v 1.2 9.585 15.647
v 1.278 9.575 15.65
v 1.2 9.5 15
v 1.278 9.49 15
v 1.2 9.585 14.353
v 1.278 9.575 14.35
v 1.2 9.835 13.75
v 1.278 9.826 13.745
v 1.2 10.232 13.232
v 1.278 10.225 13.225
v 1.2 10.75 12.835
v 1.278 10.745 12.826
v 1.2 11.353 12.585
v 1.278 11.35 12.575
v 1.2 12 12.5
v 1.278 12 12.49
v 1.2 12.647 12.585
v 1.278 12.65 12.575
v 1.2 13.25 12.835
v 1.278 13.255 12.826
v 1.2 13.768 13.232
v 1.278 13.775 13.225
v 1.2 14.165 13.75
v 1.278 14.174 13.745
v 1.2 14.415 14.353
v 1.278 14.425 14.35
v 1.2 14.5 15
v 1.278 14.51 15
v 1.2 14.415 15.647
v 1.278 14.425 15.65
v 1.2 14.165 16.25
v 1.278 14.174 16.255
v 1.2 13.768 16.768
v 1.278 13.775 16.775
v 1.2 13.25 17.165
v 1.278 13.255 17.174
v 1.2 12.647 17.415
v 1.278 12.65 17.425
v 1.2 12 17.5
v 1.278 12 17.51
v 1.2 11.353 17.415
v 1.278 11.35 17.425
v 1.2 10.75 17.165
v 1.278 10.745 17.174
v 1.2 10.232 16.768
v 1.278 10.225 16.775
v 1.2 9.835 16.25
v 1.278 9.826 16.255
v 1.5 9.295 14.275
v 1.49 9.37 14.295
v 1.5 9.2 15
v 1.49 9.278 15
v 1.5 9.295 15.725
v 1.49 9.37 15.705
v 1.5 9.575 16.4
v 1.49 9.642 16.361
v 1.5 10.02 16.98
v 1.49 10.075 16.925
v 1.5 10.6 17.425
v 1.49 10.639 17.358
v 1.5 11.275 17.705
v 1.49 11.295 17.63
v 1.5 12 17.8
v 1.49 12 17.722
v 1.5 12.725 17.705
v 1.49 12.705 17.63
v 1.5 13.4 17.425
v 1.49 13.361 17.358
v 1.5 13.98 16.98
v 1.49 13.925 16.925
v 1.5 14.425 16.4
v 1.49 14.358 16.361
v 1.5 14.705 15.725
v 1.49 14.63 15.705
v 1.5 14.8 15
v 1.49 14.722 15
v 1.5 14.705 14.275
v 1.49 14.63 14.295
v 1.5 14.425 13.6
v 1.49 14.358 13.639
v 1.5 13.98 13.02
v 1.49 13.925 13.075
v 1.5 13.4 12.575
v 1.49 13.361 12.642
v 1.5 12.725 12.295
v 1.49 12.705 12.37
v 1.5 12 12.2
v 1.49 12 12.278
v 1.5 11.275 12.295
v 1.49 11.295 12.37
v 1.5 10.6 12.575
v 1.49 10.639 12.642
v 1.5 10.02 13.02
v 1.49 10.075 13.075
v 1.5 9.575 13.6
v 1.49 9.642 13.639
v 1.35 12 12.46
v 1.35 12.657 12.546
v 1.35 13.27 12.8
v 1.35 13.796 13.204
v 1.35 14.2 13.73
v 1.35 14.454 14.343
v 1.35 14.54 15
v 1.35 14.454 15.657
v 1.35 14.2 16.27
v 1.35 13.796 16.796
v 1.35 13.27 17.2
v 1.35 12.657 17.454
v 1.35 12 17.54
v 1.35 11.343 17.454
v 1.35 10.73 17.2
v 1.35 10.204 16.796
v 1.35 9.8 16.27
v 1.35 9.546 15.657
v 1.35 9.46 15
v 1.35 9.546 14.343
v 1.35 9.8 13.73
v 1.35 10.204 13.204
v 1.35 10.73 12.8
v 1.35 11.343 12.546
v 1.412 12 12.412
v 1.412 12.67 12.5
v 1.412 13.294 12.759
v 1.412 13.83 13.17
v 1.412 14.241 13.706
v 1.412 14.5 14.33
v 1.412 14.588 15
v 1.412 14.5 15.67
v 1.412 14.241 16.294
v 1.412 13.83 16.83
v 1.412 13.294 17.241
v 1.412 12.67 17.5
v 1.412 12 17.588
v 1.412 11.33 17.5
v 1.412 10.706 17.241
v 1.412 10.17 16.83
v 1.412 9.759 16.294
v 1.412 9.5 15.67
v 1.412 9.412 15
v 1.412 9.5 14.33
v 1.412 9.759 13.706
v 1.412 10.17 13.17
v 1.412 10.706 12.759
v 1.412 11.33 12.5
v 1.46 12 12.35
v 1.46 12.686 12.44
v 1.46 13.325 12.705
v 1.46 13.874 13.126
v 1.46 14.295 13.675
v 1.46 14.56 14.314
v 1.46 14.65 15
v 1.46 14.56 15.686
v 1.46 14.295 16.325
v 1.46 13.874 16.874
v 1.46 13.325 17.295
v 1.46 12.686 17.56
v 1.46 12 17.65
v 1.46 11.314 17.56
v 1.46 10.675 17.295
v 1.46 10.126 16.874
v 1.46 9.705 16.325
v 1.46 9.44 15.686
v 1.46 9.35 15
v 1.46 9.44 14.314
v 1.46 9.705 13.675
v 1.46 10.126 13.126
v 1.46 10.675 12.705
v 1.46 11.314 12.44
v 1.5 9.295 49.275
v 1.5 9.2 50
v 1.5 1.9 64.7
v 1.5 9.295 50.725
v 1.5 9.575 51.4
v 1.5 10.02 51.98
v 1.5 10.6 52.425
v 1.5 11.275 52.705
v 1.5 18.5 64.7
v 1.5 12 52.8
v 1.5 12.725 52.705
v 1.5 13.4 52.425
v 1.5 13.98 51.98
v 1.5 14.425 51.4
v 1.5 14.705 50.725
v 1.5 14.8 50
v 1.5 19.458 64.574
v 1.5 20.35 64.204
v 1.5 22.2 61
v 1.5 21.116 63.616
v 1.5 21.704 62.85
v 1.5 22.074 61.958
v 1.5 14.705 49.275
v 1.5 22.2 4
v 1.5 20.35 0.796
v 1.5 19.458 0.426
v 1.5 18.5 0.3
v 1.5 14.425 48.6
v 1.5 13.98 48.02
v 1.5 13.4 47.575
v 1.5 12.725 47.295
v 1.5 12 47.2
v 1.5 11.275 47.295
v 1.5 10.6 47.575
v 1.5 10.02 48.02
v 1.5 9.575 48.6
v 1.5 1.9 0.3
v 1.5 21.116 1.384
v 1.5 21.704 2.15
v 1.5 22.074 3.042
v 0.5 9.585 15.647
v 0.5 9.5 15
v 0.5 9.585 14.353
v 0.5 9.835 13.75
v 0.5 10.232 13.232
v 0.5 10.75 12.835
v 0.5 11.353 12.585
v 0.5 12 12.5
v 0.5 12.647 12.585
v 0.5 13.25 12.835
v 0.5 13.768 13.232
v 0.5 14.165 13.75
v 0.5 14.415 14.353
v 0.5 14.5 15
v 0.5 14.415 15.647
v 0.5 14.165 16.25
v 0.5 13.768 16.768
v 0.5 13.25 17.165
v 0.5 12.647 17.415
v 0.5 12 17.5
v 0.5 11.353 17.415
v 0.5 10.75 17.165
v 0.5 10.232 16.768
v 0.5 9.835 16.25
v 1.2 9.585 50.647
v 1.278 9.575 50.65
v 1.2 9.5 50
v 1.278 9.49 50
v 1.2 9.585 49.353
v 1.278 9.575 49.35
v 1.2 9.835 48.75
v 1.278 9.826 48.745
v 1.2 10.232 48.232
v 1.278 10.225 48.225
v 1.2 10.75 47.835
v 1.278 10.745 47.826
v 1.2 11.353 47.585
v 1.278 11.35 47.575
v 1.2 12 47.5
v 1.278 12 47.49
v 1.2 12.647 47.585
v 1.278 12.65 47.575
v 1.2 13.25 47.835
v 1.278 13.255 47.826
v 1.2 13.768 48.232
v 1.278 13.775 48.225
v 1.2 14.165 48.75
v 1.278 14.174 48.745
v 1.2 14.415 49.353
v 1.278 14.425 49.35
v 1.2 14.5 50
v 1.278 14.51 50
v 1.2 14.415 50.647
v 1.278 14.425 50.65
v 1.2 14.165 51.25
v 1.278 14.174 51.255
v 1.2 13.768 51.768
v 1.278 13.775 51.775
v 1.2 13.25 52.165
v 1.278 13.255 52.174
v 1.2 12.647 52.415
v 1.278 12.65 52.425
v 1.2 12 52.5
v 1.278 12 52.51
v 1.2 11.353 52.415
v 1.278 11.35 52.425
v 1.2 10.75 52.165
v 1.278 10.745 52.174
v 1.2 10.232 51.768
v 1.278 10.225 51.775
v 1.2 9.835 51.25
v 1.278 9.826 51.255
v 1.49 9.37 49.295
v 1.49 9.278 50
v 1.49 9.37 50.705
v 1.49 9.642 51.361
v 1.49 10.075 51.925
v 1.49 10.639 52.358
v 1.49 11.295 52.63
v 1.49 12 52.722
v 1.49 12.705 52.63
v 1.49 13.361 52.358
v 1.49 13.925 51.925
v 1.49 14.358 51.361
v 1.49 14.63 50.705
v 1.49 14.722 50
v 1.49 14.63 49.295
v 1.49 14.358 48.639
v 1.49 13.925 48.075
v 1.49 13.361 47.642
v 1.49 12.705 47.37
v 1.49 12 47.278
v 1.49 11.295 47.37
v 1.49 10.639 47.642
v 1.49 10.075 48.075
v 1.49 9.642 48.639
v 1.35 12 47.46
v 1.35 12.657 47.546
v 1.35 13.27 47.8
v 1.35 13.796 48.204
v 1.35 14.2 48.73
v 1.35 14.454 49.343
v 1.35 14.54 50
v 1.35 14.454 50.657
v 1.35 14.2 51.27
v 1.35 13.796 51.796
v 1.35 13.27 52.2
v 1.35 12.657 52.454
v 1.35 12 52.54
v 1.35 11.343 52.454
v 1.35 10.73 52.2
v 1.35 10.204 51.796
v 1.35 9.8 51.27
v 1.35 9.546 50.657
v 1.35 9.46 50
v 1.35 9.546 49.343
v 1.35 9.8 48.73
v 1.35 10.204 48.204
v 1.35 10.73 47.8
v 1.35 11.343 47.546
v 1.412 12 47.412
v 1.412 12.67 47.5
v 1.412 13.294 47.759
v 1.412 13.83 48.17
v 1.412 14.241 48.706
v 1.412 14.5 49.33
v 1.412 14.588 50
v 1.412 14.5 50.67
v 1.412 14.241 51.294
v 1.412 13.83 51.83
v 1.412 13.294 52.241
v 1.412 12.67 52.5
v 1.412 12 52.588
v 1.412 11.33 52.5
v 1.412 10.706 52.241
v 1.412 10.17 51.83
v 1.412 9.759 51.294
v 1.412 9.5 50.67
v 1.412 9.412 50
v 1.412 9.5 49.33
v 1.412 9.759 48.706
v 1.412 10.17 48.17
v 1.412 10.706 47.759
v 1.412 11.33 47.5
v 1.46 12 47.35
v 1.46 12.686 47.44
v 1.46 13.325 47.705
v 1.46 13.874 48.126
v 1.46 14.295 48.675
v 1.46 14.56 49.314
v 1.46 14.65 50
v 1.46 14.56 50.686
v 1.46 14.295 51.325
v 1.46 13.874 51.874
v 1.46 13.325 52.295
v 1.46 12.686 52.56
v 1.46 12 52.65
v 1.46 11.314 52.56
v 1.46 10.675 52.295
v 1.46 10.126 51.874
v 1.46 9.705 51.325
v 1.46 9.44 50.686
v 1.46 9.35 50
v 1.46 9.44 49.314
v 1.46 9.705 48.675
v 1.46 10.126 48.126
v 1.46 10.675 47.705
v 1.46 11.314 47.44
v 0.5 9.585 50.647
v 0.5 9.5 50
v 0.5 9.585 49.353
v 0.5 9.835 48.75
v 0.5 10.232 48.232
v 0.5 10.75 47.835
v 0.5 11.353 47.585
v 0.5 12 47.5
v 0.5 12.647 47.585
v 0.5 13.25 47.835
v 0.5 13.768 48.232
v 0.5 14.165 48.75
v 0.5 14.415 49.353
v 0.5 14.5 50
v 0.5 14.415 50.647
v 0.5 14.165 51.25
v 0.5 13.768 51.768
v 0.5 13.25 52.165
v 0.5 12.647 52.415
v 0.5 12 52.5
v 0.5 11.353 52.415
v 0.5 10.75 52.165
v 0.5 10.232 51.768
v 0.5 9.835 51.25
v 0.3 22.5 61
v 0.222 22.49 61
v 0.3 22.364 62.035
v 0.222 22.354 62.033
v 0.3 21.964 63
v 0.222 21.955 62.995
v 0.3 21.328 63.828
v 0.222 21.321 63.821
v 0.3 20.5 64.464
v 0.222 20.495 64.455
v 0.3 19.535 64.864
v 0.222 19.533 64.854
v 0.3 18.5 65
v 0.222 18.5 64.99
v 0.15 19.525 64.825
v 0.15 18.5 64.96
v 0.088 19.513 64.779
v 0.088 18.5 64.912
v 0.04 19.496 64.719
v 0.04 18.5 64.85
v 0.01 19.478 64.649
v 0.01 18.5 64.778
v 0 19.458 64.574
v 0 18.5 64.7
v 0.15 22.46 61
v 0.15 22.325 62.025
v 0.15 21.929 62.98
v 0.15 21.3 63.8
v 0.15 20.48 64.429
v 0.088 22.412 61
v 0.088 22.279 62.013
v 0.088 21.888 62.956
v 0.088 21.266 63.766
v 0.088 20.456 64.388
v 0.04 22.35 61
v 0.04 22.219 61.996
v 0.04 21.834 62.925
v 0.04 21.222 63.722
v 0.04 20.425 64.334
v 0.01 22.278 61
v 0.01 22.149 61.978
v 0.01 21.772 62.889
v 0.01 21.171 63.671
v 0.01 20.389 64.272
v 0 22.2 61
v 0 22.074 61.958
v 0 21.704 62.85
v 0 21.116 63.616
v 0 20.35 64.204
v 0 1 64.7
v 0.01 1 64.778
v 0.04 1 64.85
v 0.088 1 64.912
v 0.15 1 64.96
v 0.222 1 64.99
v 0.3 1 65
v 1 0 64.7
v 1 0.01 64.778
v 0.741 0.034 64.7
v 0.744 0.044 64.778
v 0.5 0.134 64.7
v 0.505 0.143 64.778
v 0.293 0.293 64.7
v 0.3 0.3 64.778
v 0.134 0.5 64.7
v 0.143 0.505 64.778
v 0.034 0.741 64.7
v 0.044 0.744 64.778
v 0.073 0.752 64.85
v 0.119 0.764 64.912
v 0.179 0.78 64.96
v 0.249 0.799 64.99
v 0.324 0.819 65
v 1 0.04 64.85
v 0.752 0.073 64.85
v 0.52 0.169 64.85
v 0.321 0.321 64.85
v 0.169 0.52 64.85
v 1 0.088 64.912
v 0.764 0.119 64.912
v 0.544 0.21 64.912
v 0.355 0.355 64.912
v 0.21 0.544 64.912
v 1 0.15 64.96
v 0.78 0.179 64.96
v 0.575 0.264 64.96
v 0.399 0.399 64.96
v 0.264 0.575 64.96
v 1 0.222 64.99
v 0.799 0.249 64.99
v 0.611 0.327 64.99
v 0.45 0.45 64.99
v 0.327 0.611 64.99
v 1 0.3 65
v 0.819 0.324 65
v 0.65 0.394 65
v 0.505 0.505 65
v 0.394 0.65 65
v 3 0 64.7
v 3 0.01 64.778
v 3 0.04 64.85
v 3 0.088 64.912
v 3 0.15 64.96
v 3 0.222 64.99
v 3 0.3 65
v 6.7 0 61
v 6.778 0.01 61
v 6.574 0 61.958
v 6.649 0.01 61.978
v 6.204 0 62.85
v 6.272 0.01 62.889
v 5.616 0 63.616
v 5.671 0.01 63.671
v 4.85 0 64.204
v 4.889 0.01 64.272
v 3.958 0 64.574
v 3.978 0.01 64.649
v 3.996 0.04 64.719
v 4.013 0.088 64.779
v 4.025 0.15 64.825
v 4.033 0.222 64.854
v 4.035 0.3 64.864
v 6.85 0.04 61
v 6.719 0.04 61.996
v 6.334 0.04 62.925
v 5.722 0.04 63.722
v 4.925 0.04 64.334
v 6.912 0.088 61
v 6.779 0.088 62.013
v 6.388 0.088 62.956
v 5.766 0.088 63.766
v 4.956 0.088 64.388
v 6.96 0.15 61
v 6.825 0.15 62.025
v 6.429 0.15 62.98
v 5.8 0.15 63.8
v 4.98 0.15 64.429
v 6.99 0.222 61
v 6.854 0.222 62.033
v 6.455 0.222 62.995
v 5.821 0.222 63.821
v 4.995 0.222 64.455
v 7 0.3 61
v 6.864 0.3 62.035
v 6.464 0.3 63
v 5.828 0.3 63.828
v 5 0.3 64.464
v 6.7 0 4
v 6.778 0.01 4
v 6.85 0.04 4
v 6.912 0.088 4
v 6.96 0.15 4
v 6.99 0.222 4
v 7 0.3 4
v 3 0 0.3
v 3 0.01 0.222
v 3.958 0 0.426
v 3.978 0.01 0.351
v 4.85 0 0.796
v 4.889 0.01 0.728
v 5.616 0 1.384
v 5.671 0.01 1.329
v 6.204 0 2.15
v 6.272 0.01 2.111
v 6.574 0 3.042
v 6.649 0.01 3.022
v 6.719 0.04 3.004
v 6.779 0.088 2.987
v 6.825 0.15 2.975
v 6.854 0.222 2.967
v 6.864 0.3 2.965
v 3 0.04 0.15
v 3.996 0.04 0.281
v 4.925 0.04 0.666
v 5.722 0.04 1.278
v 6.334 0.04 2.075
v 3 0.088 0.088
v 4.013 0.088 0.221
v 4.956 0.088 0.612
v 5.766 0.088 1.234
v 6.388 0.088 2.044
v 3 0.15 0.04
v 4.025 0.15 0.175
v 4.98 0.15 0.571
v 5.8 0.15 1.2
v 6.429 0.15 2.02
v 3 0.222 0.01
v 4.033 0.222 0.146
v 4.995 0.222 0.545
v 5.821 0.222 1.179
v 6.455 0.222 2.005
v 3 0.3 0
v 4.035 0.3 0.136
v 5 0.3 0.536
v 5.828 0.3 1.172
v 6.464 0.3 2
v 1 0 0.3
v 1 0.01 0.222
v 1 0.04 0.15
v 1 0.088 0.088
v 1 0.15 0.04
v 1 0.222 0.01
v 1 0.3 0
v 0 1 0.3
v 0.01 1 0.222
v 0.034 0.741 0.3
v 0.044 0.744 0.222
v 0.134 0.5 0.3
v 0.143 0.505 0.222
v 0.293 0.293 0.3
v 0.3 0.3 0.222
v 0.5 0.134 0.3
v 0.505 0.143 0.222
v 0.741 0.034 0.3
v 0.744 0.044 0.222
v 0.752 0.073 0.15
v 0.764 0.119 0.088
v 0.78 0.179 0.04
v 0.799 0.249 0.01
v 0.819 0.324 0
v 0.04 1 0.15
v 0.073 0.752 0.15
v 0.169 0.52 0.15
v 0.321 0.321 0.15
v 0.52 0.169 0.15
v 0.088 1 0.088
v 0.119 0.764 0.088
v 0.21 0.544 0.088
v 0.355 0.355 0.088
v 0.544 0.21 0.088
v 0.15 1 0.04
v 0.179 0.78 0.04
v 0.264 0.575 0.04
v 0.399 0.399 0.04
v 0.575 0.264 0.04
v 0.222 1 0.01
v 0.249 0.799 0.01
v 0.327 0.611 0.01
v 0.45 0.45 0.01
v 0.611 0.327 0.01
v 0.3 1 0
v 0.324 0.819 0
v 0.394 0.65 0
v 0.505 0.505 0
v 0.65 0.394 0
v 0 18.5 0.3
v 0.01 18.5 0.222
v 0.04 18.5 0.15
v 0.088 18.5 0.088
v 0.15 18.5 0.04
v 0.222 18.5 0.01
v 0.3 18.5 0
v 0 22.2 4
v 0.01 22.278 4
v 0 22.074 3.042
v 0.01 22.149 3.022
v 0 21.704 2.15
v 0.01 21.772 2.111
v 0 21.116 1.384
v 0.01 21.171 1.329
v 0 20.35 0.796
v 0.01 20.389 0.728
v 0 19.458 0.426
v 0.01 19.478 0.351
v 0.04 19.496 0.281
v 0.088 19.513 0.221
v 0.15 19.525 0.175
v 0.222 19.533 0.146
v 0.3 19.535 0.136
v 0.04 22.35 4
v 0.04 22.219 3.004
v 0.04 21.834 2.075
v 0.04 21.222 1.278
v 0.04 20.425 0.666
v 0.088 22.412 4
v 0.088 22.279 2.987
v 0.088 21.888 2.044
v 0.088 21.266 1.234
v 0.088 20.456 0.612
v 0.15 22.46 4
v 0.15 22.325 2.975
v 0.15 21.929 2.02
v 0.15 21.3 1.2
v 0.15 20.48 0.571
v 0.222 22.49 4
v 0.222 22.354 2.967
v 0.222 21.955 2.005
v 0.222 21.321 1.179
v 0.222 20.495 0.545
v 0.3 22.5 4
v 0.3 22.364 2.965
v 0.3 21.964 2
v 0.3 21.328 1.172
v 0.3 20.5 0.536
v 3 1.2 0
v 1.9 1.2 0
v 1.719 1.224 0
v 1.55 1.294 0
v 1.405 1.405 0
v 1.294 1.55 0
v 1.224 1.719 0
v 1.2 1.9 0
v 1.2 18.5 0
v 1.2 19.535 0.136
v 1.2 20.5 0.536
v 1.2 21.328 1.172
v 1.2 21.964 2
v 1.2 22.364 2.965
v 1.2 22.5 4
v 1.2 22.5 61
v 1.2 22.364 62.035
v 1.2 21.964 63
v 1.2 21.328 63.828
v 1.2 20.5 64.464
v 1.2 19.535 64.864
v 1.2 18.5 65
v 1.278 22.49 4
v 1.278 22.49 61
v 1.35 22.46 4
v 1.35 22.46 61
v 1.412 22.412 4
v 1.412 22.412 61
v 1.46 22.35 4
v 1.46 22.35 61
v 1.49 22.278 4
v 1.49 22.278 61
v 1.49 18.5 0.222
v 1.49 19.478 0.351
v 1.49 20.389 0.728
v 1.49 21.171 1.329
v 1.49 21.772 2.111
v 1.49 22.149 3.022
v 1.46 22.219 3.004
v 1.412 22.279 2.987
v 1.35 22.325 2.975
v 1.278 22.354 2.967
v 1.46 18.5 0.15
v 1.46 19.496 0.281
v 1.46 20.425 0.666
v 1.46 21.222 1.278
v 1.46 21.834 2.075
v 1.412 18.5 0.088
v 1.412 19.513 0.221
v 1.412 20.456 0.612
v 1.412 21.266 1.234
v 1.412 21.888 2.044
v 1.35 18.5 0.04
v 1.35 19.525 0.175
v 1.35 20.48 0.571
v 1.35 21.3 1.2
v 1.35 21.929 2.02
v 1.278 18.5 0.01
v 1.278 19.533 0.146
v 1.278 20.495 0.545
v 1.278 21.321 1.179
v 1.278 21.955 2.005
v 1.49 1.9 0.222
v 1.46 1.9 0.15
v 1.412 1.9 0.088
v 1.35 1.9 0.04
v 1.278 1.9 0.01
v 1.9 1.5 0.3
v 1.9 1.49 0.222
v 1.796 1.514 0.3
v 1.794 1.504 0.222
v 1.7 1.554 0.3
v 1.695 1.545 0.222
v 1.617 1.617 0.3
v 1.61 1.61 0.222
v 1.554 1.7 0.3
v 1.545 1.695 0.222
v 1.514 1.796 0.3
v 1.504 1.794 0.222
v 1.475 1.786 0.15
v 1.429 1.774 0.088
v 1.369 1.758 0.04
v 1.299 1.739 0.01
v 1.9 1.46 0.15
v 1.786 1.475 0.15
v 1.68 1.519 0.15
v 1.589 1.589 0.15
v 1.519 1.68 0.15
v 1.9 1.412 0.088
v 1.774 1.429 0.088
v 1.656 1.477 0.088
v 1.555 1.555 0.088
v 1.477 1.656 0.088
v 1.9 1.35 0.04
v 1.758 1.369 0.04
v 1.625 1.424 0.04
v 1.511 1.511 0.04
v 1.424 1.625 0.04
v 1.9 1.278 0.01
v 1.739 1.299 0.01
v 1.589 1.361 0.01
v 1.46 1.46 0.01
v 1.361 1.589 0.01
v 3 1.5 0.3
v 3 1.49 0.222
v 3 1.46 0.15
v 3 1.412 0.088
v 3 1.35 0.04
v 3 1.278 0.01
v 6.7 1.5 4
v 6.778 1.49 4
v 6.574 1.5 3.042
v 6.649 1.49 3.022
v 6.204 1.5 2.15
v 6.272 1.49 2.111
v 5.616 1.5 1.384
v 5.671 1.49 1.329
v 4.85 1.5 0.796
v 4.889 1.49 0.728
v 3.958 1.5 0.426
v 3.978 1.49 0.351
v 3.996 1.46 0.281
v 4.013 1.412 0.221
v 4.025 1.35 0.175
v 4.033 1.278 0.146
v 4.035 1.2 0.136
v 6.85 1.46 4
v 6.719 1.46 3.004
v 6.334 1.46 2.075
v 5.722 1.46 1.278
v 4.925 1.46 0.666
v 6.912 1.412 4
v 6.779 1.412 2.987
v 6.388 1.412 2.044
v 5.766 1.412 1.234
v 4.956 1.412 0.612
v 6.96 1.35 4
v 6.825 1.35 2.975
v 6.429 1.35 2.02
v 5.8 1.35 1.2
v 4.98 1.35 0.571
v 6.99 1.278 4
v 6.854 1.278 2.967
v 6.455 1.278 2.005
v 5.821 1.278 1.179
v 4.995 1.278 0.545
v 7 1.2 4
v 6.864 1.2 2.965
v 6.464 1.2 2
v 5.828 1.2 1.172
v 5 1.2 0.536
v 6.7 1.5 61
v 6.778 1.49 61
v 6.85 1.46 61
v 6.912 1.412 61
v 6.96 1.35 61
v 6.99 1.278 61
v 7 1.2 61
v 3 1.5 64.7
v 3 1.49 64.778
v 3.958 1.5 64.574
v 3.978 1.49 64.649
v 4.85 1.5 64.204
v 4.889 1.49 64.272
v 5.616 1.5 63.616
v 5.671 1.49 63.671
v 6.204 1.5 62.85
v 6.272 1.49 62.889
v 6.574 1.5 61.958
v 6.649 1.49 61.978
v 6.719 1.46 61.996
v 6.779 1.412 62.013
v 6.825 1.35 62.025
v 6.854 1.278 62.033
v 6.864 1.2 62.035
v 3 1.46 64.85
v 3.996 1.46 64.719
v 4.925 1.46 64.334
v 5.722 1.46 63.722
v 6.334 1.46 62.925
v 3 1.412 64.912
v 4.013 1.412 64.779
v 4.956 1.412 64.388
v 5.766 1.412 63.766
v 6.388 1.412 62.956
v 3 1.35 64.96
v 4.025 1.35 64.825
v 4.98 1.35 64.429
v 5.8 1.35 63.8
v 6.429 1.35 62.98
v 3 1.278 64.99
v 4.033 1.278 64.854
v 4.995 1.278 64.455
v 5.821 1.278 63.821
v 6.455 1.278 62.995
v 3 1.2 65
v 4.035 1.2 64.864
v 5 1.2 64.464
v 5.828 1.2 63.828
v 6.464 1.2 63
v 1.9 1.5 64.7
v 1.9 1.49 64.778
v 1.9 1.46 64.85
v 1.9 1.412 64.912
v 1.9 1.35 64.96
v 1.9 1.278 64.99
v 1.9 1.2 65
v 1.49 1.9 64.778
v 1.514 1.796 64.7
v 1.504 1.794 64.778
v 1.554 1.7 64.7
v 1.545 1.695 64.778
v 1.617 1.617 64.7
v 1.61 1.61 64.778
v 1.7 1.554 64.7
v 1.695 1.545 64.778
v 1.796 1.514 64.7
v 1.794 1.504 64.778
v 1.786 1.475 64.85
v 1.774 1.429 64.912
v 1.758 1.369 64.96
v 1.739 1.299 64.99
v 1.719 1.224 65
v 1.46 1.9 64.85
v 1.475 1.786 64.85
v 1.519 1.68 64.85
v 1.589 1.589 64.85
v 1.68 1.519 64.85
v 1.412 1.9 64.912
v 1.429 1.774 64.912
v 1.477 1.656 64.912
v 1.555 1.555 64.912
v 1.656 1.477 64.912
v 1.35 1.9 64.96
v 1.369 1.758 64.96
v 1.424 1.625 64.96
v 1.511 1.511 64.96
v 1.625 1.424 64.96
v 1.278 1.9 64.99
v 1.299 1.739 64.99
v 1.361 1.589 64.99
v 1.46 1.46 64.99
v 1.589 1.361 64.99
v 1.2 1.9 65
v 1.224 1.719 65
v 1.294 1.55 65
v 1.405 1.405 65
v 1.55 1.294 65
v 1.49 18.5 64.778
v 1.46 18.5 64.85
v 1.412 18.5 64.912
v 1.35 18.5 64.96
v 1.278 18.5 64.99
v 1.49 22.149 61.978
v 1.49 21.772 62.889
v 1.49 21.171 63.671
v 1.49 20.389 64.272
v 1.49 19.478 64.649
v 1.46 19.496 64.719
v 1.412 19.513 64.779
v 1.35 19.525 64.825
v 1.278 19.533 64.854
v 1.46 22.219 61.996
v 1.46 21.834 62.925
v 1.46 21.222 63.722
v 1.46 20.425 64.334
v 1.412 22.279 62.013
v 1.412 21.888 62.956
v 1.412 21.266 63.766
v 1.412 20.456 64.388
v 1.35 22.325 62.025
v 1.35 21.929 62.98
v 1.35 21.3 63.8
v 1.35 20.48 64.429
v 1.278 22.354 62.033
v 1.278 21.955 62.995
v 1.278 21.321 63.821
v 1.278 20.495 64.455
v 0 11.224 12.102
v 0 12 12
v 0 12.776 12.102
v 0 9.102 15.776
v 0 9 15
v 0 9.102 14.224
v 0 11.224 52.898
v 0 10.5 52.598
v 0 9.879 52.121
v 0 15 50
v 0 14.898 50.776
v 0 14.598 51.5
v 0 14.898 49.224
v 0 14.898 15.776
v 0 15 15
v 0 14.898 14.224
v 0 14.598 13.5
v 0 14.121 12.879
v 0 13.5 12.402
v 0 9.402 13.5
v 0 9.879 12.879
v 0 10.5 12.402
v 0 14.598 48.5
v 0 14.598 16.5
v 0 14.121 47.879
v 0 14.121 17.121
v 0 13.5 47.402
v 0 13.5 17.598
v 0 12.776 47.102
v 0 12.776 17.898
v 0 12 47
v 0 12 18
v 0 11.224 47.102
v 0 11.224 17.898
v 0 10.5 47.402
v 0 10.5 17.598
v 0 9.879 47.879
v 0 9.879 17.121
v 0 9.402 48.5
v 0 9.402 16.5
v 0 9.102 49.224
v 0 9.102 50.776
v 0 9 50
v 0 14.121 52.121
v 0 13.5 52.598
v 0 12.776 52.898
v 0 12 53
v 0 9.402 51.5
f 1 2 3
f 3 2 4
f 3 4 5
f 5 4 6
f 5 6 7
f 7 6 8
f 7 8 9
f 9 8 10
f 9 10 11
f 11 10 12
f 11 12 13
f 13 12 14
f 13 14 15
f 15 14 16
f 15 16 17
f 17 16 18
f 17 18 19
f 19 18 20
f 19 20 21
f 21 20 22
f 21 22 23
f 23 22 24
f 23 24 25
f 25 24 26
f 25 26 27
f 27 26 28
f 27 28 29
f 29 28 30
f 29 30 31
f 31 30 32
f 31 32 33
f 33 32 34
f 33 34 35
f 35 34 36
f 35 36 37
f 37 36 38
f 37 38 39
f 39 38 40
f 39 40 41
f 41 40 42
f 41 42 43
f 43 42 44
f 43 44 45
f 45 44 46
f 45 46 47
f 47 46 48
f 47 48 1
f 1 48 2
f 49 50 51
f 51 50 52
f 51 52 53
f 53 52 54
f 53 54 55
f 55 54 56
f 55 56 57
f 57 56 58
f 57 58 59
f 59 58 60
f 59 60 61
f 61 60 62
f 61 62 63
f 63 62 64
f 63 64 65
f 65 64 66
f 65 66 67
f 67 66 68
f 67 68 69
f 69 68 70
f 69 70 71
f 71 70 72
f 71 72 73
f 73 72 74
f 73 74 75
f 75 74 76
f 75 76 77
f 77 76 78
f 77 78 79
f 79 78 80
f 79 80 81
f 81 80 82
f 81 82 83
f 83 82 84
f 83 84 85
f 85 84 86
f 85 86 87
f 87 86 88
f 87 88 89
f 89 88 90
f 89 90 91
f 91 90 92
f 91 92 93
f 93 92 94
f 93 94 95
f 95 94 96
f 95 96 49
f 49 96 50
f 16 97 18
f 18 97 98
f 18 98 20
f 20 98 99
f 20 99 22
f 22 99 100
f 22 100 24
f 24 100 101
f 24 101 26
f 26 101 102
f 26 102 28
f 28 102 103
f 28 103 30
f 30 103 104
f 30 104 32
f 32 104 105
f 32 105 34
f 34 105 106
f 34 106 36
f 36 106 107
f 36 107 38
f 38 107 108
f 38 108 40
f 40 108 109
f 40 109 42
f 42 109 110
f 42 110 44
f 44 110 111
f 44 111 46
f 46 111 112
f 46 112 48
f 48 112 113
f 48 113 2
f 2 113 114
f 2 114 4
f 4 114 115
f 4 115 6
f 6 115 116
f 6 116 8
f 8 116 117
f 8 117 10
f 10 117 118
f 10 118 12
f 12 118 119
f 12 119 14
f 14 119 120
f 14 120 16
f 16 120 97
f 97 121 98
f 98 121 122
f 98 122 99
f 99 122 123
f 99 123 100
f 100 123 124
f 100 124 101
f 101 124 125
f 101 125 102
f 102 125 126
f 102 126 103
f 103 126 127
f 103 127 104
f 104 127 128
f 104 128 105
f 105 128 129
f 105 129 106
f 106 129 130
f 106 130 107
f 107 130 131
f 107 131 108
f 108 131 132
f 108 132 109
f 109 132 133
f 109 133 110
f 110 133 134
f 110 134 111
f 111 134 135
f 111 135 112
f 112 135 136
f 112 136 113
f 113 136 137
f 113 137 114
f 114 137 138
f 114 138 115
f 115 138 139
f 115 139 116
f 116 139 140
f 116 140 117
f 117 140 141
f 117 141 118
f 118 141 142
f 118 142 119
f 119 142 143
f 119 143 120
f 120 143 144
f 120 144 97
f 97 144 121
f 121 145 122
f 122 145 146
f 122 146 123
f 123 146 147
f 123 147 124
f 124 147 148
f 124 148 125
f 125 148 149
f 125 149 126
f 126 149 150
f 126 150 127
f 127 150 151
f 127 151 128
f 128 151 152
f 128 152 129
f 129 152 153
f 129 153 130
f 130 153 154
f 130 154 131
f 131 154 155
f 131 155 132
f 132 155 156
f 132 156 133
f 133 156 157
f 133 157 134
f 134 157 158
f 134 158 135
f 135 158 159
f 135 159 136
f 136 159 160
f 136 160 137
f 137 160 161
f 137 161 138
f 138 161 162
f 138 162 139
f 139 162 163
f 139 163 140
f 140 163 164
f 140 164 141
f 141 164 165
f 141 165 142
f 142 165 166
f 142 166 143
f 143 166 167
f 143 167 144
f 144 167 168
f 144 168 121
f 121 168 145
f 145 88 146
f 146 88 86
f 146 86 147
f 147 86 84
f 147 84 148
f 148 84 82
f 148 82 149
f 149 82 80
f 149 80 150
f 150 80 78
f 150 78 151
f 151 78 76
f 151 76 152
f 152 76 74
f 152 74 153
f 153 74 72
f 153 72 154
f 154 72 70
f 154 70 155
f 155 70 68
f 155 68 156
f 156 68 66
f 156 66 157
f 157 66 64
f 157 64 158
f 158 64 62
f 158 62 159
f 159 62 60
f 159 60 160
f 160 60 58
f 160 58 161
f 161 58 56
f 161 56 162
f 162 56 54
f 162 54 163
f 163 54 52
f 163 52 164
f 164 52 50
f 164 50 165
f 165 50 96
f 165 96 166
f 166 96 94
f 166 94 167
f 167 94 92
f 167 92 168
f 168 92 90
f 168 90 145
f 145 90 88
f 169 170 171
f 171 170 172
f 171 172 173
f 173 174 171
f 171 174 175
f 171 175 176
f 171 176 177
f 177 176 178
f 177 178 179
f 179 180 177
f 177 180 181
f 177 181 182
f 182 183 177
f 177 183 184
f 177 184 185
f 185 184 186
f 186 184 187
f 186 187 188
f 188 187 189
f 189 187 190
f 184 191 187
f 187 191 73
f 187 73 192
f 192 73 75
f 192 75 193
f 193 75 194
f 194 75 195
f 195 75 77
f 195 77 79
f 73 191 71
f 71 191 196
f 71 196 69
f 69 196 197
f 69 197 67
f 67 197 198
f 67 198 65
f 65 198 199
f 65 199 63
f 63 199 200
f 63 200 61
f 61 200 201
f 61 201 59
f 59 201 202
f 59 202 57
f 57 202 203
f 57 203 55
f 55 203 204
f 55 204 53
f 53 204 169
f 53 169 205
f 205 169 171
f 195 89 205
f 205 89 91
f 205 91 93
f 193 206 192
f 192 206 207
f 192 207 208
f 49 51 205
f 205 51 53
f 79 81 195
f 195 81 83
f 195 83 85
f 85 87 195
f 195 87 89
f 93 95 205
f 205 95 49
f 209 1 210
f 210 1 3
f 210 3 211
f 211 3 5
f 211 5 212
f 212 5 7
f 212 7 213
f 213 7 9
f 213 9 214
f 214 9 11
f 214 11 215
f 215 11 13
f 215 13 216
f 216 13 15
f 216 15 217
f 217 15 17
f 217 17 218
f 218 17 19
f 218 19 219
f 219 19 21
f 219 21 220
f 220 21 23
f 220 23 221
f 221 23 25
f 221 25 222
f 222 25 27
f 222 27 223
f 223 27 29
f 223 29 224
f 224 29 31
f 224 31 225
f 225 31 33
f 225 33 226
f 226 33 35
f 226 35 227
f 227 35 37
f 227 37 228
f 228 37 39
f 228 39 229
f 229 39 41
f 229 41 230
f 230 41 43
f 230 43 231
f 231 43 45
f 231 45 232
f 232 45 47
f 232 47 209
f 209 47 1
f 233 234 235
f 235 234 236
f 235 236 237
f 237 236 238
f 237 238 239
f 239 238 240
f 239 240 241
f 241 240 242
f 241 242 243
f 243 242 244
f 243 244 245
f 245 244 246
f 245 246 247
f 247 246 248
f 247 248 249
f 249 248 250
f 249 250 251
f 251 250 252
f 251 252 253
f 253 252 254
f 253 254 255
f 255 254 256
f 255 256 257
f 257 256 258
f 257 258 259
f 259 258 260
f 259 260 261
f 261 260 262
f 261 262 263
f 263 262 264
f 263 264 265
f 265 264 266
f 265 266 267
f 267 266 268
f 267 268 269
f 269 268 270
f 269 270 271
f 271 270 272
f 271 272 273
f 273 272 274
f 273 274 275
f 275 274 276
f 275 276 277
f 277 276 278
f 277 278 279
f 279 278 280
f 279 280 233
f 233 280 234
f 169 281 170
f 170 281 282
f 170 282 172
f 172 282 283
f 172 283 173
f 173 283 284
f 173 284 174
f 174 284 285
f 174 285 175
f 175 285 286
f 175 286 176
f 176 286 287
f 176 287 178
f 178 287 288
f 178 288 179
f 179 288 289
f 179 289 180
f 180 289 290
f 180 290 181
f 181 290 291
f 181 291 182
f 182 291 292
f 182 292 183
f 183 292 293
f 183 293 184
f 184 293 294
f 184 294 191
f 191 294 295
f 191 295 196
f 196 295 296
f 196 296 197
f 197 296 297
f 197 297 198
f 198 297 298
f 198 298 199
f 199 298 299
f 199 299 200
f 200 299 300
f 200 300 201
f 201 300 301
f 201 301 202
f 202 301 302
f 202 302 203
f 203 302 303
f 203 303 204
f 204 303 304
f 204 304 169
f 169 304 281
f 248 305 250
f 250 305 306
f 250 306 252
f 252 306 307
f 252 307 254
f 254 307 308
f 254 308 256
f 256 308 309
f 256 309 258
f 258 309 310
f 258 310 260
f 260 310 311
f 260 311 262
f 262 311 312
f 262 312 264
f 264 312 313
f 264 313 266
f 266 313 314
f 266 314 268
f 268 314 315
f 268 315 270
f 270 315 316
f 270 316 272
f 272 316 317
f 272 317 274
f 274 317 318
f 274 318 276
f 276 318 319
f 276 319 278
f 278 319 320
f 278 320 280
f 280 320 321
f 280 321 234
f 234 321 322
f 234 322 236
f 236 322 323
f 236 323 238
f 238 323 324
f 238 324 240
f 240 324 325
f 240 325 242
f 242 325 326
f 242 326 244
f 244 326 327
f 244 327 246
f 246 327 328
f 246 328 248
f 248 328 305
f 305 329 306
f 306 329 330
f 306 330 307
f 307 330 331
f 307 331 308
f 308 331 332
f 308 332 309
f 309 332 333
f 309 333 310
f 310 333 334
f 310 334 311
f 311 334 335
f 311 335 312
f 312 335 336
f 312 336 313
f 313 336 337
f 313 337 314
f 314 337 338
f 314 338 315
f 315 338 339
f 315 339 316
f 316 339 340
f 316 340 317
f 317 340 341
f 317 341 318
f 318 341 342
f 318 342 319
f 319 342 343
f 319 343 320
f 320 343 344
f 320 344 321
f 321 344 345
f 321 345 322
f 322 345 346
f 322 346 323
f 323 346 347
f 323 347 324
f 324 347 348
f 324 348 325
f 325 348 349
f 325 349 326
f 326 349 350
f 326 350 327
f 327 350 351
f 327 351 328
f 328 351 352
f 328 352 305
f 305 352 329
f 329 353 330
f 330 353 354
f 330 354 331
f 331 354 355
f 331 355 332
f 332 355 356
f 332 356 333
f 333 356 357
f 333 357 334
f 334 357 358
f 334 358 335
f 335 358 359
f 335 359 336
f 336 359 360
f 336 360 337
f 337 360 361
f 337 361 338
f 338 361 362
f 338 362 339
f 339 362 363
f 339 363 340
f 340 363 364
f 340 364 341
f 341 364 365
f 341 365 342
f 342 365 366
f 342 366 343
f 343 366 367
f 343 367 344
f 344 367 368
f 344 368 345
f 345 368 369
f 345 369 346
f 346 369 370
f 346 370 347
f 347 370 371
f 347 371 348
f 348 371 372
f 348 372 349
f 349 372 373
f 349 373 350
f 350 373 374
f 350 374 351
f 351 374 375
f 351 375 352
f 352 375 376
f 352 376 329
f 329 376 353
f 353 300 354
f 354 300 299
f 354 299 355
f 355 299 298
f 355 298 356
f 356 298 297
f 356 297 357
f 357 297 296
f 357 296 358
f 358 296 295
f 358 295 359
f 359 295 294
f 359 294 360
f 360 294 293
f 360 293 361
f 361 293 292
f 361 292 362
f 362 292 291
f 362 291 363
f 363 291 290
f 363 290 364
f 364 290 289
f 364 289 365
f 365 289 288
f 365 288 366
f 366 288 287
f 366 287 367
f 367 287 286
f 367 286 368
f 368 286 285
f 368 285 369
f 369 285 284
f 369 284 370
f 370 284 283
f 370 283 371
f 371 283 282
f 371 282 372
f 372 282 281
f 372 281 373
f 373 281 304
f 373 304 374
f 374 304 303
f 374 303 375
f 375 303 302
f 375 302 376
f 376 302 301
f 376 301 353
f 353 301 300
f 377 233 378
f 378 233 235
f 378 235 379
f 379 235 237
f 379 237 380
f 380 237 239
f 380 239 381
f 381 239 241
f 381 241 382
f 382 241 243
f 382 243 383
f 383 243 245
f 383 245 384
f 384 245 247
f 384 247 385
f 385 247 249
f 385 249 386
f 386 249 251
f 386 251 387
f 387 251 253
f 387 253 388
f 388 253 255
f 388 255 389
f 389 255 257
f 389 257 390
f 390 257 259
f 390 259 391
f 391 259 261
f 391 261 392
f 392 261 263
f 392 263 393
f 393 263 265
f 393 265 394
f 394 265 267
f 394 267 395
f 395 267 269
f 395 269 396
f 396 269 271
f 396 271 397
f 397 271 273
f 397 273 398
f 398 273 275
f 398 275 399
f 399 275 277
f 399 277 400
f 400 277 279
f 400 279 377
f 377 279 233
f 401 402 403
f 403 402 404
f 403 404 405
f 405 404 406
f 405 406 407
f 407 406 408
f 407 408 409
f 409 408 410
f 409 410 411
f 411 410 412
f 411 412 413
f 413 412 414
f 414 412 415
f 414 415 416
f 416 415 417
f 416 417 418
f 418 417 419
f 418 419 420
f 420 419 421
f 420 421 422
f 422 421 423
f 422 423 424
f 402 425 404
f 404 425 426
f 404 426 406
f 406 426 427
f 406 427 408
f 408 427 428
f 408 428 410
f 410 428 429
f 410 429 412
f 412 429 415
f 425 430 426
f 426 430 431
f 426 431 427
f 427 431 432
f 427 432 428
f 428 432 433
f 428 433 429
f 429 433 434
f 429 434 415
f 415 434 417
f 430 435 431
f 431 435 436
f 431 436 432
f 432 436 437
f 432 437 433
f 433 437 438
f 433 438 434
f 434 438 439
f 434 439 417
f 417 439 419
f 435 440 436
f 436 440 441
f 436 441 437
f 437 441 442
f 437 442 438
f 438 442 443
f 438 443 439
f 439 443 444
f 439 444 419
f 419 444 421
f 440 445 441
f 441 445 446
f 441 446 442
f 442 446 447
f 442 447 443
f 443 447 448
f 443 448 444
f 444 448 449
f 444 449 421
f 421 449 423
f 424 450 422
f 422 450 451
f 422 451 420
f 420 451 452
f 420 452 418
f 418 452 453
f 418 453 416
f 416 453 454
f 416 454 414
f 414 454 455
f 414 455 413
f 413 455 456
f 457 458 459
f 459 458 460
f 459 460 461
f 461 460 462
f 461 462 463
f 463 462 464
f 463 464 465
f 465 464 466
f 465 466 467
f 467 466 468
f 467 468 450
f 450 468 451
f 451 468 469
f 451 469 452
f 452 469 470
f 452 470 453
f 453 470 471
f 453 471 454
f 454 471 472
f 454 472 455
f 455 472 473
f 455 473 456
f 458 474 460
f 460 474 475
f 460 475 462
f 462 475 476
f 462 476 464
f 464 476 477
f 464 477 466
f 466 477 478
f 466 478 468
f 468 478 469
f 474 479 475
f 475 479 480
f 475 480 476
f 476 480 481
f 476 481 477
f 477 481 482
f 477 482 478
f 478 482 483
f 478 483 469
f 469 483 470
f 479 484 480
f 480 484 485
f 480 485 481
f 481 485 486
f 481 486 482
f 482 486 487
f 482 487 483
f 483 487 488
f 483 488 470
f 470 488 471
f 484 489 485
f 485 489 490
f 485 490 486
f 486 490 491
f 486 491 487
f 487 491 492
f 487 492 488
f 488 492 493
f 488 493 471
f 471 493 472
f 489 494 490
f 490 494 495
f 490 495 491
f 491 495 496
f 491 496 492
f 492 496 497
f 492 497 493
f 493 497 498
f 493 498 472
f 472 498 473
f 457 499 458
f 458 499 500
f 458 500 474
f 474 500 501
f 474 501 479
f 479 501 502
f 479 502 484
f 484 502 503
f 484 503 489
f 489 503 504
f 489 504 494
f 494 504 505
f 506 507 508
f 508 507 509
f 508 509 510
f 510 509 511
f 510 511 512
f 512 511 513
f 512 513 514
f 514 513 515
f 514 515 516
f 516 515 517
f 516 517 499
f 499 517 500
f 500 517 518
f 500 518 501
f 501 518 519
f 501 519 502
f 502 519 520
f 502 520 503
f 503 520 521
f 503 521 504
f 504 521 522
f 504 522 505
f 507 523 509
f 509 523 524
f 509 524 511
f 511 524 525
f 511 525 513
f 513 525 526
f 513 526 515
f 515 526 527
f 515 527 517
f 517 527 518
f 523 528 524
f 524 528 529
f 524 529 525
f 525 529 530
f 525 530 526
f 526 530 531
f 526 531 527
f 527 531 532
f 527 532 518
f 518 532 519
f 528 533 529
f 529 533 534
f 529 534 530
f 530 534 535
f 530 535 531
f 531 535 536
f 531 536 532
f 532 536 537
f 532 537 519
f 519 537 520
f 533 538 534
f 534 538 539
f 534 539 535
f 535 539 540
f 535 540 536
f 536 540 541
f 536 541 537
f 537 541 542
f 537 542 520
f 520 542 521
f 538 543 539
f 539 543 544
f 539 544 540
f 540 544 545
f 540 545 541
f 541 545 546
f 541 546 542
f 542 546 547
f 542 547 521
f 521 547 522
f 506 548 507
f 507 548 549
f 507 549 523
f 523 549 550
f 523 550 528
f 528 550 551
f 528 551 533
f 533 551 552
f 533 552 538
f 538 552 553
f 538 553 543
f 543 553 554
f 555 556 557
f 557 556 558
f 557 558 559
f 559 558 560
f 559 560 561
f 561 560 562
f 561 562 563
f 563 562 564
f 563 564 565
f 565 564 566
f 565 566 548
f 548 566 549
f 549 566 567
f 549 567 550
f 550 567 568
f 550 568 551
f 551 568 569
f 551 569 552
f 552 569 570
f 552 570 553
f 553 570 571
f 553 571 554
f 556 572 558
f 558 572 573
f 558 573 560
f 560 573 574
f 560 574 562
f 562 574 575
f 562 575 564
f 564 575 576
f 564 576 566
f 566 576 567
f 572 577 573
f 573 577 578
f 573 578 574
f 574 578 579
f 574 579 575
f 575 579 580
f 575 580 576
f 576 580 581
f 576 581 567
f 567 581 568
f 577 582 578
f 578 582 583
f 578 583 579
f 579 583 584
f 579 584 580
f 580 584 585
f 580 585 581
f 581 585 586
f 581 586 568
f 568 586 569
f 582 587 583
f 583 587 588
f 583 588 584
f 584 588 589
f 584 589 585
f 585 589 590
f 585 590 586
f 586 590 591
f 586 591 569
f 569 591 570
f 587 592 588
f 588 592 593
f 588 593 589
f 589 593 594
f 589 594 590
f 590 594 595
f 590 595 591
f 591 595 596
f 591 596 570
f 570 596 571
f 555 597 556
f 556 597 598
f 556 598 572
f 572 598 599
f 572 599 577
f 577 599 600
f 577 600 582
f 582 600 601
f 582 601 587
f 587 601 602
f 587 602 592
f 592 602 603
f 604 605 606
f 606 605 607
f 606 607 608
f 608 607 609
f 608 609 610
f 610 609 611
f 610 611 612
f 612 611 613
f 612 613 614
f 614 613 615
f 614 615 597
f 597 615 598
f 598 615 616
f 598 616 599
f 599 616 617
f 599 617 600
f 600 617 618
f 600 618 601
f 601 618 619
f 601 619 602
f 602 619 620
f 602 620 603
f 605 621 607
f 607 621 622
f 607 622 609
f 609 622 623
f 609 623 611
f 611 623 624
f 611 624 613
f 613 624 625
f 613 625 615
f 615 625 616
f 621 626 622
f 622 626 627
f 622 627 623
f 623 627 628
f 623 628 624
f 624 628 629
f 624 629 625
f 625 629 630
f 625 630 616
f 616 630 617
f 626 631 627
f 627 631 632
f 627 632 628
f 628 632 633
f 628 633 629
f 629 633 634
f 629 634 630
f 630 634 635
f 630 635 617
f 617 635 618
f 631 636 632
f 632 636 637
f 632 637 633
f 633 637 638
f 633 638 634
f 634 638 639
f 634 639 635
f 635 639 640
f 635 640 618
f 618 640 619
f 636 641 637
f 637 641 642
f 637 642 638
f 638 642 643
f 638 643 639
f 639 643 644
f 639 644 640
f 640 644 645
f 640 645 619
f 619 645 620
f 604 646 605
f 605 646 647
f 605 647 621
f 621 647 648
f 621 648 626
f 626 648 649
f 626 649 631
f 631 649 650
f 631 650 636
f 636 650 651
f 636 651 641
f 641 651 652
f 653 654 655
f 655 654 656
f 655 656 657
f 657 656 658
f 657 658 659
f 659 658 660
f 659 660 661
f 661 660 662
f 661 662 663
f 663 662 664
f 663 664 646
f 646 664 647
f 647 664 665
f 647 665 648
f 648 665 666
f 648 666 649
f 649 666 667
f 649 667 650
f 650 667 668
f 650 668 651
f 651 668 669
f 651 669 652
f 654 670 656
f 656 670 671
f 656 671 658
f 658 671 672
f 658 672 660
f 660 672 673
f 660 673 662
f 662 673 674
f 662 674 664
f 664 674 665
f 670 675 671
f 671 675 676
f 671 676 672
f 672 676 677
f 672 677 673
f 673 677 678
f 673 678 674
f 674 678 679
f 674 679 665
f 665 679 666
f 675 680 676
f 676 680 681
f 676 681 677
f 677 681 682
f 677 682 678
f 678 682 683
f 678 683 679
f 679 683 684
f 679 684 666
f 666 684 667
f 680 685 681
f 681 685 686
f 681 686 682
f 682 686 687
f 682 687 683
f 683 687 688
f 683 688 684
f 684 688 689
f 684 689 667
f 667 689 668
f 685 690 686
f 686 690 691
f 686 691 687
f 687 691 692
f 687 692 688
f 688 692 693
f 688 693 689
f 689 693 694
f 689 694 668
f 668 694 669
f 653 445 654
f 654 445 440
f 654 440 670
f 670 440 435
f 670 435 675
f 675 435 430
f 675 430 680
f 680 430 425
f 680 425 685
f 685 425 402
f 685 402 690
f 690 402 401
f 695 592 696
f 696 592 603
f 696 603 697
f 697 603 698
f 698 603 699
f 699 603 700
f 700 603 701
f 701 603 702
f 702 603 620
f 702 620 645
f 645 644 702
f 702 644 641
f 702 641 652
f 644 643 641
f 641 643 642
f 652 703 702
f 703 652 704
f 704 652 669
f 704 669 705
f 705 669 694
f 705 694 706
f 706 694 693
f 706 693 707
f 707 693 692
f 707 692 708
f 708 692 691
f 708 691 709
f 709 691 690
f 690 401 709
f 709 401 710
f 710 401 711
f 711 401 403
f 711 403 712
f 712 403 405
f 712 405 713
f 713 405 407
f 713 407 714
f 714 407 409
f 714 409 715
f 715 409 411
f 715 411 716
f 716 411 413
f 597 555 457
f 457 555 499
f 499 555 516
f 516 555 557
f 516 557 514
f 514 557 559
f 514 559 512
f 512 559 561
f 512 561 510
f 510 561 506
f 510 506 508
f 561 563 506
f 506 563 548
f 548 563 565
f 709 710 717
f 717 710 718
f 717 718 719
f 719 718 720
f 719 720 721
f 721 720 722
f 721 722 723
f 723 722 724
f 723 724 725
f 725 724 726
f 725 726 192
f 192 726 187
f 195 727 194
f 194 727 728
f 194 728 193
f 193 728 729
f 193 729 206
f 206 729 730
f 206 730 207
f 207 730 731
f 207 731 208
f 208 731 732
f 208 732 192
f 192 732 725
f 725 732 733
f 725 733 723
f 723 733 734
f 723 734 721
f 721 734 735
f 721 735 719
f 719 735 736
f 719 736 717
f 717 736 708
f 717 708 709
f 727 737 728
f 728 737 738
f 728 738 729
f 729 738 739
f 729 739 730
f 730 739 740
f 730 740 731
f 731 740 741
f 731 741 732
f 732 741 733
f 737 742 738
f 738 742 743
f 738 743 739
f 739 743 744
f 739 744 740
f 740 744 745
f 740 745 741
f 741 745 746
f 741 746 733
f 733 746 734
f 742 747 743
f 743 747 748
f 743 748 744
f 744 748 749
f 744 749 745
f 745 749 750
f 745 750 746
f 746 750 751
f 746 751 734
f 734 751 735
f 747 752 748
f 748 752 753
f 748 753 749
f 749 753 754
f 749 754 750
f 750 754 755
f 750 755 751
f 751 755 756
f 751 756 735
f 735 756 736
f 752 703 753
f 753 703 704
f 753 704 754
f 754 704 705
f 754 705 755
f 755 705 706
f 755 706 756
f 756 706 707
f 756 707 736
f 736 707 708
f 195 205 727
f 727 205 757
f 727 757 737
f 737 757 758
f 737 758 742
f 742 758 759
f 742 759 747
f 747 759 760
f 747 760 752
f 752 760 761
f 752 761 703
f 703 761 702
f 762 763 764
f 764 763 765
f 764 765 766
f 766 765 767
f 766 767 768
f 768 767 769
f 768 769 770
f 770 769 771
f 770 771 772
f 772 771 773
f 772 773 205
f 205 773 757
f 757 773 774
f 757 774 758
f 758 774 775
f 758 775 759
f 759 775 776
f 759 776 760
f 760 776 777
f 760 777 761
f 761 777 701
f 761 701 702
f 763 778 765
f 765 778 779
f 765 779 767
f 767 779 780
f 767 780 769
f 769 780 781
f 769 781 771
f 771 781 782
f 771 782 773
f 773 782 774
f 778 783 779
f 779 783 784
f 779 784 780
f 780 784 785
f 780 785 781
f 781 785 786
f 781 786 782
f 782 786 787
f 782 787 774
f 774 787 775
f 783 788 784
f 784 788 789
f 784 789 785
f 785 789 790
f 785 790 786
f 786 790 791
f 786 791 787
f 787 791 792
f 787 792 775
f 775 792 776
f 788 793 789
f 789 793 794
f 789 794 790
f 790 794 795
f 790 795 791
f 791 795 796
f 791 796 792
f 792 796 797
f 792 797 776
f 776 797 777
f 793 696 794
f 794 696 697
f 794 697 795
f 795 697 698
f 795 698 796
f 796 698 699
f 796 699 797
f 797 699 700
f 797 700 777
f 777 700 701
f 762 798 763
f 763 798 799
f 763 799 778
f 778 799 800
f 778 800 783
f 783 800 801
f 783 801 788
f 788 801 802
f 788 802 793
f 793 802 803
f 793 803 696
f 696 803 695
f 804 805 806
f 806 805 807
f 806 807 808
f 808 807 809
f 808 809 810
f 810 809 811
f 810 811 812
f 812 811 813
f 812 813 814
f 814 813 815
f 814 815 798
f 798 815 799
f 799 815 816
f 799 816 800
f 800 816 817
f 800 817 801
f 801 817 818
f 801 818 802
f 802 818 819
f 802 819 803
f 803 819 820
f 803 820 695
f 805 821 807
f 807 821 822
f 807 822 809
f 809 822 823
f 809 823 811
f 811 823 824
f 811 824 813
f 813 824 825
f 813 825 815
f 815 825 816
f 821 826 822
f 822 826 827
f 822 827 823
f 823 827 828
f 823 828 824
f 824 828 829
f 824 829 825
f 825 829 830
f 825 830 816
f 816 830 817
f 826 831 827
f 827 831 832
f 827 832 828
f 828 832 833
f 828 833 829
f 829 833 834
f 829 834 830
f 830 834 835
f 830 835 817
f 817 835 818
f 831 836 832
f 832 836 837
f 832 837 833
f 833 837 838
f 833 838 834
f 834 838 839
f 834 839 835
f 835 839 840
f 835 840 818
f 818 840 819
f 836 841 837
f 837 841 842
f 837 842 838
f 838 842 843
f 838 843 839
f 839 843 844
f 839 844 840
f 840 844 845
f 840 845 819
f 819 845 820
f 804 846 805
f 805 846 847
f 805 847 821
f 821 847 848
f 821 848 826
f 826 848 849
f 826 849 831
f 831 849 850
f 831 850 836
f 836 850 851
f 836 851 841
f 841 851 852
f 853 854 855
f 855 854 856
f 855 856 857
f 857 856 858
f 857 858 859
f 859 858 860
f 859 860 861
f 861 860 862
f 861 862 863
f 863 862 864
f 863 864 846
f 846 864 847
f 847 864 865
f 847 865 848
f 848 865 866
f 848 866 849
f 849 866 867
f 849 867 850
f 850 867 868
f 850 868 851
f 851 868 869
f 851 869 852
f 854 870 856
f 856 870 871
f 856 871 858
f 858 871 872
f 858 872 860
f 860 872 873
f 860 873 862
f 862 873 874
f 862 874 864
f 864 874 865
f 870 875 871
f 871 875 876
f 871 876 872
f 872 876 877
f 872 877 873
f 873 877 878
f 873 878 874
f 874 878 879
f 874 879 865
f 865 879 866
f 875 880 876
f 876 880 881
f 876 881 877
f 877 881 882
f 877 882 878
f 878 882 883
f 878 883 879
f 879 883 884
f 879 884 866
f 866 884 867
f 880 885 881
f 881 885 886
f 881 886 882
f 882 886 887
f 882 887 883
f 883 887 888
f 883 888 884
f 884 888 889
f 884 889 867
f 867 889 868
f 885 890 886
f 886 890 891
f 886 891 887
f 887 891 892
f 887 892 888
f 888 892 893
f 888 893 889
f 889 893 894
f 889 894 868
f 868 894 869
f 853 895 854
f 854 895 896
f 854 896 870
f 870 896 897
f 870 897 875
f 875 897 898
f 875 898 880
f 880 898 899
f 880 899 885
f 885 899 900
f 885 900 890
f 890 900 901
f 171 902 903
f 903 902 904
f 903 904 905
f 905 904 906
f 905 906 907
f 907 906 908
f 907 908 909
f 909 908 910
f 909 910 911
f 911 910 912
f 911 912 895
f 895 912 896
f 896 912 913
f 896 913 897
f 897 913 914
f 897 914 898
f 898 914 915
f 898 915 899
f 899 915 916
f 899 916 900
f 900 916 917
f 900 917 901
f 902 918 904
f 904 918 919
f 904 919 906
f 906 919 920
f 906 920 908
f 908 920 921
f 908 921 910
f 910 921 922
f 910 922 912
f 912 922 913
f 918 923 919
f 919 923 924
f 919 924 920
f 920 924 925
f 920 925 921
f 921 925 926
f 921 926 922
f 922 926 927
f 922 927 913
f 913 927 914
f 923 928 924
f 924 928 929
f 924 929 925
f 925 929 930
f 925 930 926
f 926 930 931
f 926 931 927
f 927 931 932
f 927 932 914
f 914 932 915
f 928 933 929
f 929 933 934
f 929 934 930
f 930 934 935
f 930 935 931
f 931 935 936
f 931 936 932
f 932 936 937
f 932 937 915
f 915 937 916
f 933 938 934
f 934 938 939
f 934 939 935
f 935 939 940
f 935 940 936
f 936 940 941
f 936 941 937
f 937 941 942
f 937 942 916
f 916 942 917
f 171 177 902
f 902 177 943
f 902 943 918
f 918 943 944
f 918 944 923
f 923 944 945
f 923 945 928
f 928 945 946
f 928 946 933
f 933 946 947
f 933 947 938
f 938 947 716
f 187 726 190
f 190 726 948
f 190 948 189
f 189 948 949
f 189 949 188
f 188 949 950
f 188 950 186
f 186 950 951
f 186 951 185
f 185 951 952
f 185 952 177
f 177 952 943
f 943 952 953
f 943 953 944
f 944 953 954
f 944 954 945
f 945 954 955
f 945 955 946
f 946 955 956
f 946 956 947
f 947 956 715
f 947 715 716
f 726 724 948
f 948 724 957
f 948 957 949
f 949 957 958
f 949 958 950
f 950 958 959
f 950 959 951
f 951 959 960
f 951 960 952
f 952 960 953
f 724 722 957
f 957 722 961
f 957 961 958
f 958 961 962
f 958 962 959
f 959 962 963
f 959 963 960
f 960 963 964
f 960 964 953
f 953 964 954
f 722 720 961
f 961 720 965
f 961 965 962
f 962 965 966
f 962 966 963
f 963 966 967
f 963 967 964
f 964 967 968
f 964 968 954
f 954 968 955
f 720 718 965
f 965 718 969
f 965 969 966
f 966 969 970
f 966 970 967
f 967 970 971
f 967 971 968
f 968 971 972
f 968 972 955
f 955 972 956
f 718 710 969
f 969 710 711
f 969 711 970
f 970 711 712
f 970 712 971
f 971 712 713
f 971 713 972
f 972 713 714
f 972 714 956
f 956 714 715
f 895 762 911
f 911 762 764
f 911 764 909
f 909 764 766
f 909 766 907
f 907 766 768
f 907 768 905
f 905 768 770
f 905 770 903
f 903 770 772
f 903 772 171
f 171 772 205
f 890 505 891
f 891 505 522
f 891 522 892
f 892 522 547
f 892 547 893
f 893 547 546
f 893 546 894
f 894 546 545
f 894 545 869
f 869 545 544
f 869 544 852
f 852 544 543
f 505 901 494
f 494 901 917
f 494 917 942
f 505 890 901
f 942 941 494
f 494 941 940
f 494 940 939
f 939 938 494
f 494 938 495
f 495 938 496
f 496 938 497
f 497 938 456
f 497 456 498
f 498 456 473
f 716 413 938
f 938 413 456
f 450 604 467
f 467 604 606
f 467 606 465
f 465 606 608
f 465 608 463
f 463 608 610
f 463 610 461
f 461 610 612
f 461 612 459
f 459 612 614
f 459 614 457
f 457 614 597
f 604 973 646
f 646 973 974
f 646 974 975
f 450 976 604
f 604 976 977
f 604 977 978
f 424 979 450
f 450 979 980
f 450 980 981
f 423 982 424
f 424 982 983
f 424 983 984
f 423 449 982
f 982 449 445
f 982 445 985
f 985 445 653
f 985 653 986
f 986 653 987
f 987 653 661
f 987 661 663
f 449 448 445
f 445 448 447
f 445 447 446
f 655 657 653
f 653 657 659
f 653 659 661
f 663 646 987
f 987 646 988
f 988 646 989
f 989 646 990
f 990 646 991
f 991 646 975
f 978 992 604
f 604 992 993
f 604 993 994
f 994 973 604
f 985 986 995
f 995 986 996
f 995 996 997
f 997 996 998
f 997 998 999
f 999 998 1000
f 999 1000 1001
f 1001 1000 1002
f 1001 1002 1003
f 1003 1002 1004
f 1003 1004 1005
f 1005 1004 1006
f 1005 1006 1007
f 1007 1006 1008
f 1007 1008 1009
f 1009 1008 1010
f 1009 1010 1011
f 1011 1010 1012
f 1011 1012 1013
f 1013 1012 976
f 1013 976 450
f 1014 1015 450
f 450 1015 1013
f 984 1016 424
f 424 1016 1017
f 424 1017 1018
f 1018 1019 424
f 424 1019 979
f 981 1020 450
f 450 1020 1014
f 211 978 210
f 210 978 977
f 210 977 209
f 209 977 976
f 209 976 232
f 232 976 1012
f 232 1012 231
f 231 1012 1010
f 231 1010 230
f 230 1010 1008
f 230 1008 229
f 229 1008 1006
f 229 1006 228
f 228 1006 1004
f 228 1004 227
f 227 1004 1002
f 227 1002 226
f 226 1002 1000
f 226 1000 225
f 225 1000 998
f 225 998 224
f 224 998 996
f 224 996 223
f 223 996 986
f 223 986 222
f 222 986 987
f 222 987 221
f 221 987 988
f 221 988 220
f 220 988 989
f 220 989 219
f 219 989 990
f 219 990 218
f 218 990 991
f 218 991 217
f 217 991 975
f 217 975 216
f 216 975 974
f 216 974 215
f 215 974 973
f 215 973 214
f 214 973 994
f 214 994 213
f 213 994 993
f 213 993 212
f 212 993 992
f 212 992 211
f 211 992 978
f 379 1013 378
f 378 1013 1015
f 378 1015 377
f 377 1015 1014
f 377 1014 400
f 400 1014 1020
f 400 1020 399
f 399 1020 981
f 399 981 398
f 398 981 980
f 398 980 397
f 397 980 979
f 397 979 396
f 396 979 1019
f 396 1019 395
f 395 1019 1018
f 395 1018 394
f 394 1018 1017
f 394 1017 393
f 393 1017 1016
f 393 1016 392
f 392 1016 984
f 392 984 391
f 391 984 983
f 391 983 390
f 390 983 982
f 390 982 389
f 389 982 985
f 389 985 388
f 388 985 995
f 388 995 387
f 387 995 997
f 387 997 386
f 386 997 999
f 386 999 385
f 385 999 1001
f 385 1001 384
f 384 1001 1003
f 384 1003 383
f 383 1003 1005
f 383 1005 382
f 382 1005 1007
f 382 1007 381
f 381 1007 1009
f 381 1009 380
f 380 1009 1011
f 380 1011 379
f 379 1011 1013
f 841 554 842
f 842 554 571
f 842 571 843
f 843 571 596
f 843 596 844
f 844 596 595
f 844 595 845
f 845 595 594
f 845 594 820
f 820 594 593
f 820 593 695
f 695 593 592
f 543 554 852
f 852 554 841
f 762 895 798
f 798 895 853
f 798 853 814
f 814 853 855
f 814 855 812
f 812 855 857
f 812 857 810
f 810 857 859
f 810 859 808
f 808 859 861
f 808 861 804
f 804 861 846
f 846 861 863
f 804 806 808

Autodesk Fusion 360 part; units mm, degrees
sketch "Skizze1" plane through (0, 0, 0) normal (0, 1, 0) x (1, 0, 0)
  line L0 (0, 0) -> (7, 0)
  line L1 (7, 0) -> (7, -65)
  line L2 (7, -65) -> (0, -65)
  line L3 (0, -65) -> (0, 0)
  dimension "d1" = 7
  dimension "d2" = 65
extrude "Extrusion1" add sketch "Skizze1" along normal blind 1.5
sketch "Skizze2" plane through (0, 1.5, 0) normal (0, 1, 0) x (-1, 0, 0)
  line L0 (0, 65) -> (-7, 65)
  line L1 (-7, 65) -> (-7, 0)
  line L2 (-7, 0) -> (0, 0)
  line L3 (0, 0) -> (0, 65)
  line L4 (-1.5, 65) -> (-1.5, 0)
  dimension "d5" = 1.5
extrude "Extrusion2" add sketch "Skizze2" along normal blind 21 contours L0 L2 L3 L4
fillet "Abrundung1" radius 4 4 edges at (0.75, 22.5, 65) (7, 0.75, 65) (0.75, 22.5, 0) (7, 0.75, 0)
sketch "Skizze3" plane through (1.5, 0, 0) normal (1, 0, 0) x (0, 1, 0)
  arc A0 (18.5, 0) -> (22.5, 4) centre (18.5, 4) ccw
  line L0 (22.5, 4) -> (22.5, 61)
  arc A1 (22.5, 61) -> (18.5, 65) centre (18.5, 61) ccw
  line L1 (18.5, 65) -> (1.5, 65)
  line L2 (1.5, 65) -> (1.5, 0)
  line L3 (1.5, 0) -> (18.5, 0)
  line L4 (12, 65) -> (12, 0)
  circle A2 centre (12, 50) radius 2.5
  circle A3 centre (12, 15) radius 2.5
  dimension "d10" = 12
  dimension "d11" = 5
  dimension "d12" = 5
  dimension "d13" = 15
  dimension "d14" = 15
extrude "Extrusion3" cut sketch "Skizze3" against normal blind 2 contours L4 A3 | L4 A3 | L4 A2 | L4 A2
chamfer "Fase1" distance 0.5 angle 45 2 edges at (0, 9.6692, 49.096) (0, 9.6692, 14.096)
fillet "Abrundung4" radius 0.4 1 edges at (1.5, 1.5, 32.5)
fillet "Abrundung6" radius 1 1 edges at (0, 0, 32.5)
fillet "Abrundung7" radius 0.3 26 edges at (1.5, 22.5, 32.5) (1.5, 21.3284, 1.1716) (1.5, 10.2, 0) (1.6172, 1.6172, 0) (2.45, 1.5, 0) (5.8284, 1.5, 1.1716) (7, 1.5, 32.5) (5.8284, 1.5, 63.8284) (2.45, 1.5, 65) (1.6172, 1.6172, 65) (1.5, 10.2, 65) (1.5, 21.3284, 63.8284) (0, 21.3284, 63.8284) (0, 9.75, 65) (0.2929, 0.2929, 65) (2, 0, 65) (5.8284, 0, 63.8284) (7, 0, 32.5) (5.8284, 0, 1.1716) (2, 0, 0) (0.2929, 0.2929, 0) (0, 9.75, 0) (0, 21.3284, 1.1716) (0, 22.5, 32.5) (1.5, 9.6692, 50.904) (1.5, 9.6692, 15.904)
